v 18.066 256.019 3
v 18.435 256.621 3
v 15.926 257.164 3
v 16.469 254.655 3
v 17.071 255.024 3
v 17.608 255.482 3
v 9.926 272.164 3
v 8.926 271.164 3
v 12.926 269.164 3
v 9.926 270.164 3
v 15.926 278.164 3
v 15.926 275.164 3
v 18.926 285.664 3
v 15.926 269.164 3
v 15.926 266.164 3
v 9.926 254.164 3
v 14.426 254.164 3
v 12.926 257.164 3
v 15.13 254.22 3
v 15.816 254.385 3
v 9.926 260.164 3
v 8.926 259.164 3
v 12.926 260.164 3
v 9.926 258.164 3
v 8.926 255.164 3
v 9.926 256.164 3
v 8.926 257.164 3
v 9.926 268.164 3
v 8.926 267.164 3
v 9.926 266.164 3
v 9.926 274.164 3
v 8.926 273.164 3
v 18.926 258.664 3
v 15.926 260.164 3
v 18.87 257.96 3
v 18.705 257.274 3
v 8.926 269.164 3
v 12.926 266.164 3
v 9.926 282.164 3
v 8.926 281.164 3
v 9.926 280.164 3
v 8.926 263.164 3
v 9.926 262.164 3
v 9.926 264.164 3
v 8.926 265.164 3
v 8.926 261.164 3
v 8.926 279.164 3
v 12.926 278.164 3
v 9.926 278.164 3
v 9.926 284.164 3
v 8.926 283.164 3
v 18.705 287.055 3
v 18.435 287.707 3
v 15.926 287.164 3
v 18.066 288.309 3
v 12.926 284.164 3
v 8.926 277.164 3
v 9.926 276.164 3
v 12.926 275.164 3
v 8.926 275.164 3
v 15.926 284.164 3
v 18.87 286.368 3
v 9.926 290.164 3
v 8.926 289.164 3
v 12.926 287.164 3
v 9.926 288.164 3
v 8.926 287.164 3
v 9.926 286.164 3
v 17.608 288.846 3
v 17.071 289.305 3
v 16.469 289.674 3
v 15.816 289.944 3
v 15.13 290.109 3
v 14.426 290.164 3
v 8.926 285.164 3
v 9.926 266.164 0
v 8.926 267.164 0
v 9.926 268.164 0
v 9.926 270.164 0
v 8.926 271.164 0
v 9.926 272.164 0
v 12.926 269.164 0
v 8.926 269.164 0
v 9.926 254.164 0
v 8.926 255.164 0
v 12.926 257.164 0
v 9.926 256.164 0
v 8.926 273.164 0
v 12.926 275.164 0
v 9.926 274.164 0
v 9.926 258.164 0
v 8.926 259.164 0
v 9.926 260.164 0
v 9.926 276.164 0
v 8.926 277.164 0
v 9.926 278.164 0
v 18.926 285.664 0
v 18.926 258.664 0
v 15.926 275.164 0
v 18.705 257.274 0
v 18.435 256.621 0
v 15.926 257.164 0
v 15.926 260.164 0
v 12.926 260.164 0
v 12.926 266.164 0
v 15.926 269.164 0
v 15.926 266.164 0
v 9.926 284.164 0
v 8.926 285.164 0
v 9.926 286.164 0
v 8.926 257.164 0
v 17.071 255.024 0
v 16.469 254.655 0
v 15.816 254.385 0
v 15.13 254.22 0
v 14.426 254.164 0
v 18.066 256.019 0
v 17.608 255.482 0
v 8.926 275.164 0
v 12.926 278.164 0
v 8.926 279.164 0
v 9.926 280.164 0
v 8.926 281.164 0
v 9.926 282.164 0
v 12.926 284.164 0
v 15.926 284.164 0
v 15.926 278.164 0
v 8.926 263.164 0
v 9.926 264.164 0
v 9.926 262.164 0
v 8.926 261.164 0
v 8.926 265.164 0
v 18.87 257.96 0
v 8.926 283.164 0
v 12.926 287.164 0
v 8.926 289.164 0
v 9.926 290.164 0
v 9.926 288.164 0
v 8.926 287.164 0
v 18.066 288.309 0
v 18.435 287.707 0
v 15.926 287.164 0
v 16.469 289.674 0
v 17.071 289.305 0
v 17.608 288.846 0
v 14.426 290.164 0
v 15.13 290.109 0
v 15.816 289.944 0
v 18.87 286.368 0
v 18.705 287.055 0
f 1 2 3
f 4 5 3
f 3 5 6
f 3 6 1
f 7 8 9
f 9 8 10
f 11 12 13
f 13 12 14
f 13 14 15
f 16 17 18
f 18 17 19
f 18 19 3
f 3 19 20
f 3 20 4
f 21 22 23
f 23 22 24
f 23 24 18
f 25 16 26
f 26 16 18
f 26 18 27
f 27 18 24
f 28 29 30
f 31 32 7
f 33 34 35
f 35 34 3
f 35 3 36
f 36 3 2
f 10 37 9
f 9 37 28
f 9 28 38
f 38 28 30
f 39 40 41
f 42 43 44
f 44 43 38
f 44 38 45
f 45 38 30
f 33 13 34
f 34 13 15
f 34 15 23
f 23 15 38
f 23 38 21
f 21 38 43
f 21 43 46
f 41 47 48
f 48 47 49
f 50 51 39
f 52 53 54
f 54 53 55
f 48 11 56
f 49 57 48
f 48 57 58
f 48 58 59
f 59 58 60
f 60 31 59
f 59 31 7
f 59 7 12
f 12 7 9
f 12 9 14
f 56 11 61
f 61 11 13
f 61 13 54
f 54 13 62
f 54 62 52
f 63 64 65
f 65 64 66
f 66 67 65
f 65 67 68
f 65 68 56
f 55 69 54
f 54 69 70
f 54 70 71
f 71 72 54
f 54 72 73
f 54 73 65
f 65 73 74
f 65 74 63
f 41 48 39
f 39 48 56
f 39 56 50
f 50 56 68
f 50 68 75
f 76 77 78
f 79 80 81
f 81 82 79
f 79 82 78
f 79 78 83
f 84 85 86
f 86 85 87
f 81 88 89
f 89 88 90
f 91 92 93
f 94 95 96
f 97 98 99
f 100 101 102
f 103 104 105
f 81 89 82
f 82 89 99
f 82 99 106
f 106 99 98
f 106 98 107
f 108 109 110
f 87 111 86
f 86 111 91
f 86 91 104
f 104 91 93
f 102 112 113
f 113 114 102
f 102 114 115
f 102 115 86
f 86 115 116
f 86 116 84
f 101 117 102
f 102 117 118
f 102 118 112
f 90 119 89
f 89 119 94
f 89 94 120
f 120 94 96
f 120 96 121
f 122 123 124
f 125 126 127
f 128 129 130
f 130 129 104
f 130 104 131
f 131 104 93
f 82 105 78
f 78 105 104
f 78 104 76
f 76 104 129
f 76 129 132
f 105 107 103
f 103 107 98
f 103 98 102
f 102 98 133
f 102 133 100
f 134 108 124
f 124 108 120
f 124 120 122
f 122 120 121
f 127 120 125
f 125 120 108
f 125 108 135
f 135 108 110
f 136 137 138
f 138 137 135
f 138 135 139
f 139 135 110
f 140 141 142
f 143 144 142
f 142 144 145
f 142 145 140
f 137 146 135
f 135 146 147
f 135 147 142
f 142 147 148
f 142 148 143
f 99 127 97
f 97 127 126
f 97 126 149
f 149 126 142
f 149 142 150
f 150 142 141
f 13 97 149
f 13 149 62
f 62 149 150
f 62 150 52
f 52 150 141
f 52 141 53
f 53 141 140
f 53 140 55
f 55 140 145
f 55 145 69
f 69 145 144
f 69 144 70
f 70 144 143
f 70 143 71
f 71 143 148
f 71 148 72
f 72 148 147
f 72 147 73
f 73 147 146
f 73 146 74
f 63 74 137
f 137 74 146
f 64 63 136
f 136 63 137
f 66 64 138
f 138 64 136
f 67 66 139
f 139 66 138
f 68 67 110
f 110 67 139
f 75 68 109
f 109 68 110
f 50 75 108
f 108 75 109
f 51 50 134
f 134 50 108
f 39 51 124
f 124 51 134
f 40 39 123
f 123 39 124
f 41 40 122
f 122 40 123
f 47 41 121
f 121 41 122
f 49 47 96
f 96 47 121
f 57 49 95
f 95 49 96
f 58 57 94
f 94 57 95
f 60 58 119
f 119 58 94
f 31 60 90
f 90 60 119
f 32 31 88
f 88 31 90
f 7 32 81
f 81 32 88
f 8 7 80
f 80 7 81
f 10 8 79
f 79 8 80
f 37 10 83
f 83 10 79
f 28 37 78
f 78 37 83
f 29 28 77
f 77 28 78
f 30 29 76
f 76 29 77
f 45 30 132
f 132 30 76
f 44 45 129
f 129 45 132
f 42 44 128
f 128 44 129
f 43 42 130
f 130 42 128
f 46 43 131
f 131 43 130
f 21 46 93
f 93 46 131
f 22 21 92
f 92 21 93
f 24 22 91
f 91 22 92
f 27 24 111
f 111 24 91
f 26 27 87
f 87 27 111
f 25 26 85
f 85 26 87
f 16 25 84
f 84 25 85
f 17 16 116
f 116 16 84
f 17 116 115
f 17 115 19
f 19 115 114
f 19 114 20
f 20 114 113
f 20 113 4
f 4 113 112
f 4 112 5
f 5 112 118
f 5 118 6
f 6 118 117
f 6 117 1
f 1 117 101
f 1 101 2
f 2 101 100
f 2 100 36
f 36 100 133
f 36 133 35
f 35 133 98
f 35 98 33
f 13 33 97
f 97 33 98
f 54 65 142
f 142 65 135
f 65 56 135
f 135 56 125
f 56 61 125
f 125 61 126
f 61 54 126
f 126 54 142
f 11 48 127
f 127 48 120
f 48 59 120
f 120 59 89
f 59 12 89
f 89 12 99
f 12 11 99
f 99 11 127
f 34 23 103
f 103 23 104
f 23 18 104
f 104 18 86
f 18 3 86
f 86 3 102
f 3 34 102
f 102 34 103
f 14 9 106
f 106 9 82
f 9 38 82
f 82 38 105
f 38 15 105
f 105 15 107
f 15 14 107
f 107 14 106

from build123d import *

# Parameters (mm, degrees)
MODEL_W                 = 3
MODEL_H                 = 3
SALIENTE_EXTRUIR1_DEPTH = 3


with BuildPart() as part:
    # Model → Saliente-Extruir1 (new body)
    with BuildSketch(Plane.XY):
        with BuildLine():
            Line((9.925690899, 288.164372243), (8.925690899, 289.164372243))
            Line((8.925690899, 289.164372243), (9.925690899, 290.164372243))
            Line((9.925690899, 290.164372243), (14.425690899, 290.164372243))
            ThreePointArc((14.425690899, 290.164372243), (17.607671414, 288.846352758), (18.925690899, 285.664372243))
            Line((18.925690899, 285.664372243), (18.925690899, 258.664372243))
            ThreePointArc((18.925690899, 258.664372243), (17.607671414, 255.482391728), (14.425690899, 254.164372243))
            Line((14.425690899, 254.164372243), (9.925690899, 254.164372243))
            Line((9.925690899, 254.164372243), (8.925690899, 255.164372243))
            Line((8.925690899, 255.164372243), (9.925690899, 256.164372243))
            Line((9.925690899, 256.164372243), (8.925690899, 257.164372243))
            Line((8.925690899, 257.164372243), (9.925690899, 258.164372243))
            Line((9.925690899, 258.164372243), (8.925690899, 259.164372243))
            Line((8.925690899, 259.164372243), (9.925690899, 260.164372243))
            Line((9.925690899, 260.164372243), (8.925690899, 261.164372243))
            Line((8.925690899, 261.164372243), (9.925690899, 262.164372243))
            Line((9.925690899, 262.164372243), (8.925690899, 263.164372243))
            Line((8.925690899, 263.164372243), (9.925690899, 264.164372243))
            Line((9.925690899, 264.164372243), (8.925690899, 265.164372243))
            Line((8.925690899, 265.164372243), (9.925690899, 266.164372243))
            Line((9.925690899, 266.164372243), (8.925690899, 267.164372243))
            Line((8.925690899, 267.164372243), (9.925690899, 268.164372243))
            Line((9.925690899, 268.164372243), (8.925690899, 269.164372243))
            Line((8.925690899, 269.164372243), (9.925690899, 270.164372243))
            Line((9.925690899, 270.164372243), (8.925690899, 271.164372243))
            Line((8.925690899, 271.164372243), (9.925690899, 272.164372243))
            Line((9.925690899, 272.164372243), (8.925690899, 273.164372243))
            Line((8.925690899, 273.164372243), (9.925690899, 274.164372243))
            Line((9.925690899, 274.164372243), (8.925690899, 275.164372243))
            Line((8.925690899, 275.164372243), (9.925690899, 276.164372243))
            Line((9.925690899, 276.164372243), (8.925690899, 277.164372243))
            Line((8.925690899, 277.164372243), (9.925690899, 278.164372243))
            Line((9.925690899, 278.164372243), (8.925690899, 279.164372243))
            Line((8.925690899, 279.164372243), (9.925690899, 280.164372243))
            Line((9.925690899, 280.164372243), (8.925690899, 281.164372243))
            Line((8.925690899, 281.164372243), (9.925690899, 282.164372243))
            Line((9.925690899, 282.164372243), (8.925690899, 283.164372243))
            Line((8.925690899, 283.164372243), (9.925690899, 284.164372243))
            Line((9.925690899, 284.164372243), (8.925690899, 285.164372243))
            Line((8.925690899, 285.164372243), (9.925690899, 286.164372243))
            Line((9.925690899, 286.164372243), (8.925690899, 287.164372243))
            Line((8.925690899, 287.164372243), (9.925690899, 288.164372243))
        make_face()
        with Locations((14.425690899, 285.664372243)):
            Rectangle(MODEL_W, MODEL_H, mode=Mode.SUBTRACT)
        with Locations((14.425690899, 276.664372243)):
            Rectangle(MODEL_W, MODEL_H, mode=Mode.SUBTRACT)
        with Locations((14.425690899, 258.664372243)):
            Rectangle(MODEL_W, MODEL_H, mode=Mode.SUBTRACT)
        with Locations((14.425690899, 267.664372243)):
            Rectangle(MODEL_W, MODEL_H, mode=Mode.SUBTRACT)
    extrude(amount=SALIENTE_EXTRUIR1_DEPTH)


solid = part.part
